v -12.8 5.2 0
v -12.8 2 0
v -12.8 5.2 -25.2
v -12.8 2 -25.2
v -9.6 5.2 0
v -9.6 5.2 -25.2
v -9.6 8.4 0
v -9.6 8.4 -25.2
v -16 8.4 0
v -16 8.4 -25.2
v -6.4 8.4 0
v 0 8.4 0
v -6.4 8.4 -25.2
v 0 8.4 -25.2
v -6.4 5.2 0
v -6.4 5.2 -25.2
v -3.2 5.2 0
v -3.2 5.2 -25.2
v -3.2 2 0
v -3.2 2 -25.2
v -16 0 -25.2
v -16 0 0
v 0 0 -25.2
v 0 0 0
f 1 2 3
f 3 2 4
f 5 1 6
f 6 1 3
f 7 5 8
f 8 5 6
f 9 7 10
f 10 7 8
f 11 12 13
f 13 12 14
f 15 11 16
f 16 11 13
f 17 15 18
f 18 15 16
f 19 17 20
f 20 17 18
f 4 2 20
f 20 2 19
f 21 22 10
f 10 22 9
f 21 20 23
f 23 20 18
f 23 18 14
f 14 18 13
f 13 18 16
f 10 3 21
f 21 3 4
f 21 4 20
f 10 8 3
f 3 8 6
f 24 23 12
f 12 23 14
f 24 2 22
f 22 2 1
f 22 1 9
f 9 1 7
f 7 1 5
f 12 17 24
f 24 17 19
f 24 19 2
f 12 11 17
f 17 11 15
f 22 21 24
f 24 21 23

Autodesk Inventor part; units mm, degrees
ref_plane "YZ Plane" through (0, 0, 0) normal (1, 0, 0) x (0, 1, 0)
ref_plane "XZ Plane" through (0, 0, 0) normal (0, 1, 0) x (-1, 0, 0)
ref_plane "XY Plane" through (0, 0, 0) normal (0, 0, 1) x (1, 0, 0)
sketch "Sketch1" plane through (0, 0, 0) normal (0, 1, 0) x (-1, 0, 0)
  line L0 (0, 0) -> (16, 0)
  line L1 (16, 0) -> (16, -25.2)
  line L2 (16, -25.2) -> (0, -25.2)
  line L3 (0, -25.2) -> (0, 0)
  dimension "d0" = 16
  dimension "d1" = 25.2
extrude "Extrusion1" add sketch "Sketch1" along normal blind 2
sketch "Sketch2" plane through (-16, 0, 0) normal (0, 0, 1) x (1, 0, 0)
  line L0 (0, 2) -> (16, 2) projected
  line L1 (16, 2) -> (16, 8.4)
  line L2 (16, 8.4) -> (9.6, 8.4)
  line L3 (9.6, 8.4) -> (9.6, 5.2)
  line L4 (9.6, 5.2) -> (12.8, 5.2)
  line L5 (12.8, 5.2) -> (12.8, 2)
  line L6 (12.8, 2) -> (16, 2)
  line L7 (0, 2) -> (0, 8.4)
  line L8 (0, 8.4) -> (6.4, 8.4)
  line L9 (6.4, 8.4) -> (6.4, 5.2)
  line L10 (6.4, 5.2) -> (3.2, 5.2)
  line L11 (3.2, 5.2) -> (3.2, 2)
  point P0 (16, 0)
  dimension "d4" = 6.4
  dimension "d5" = 6.4
  dimension "d6" = 3.2
  dimension "d7" = 3.2
  dimension "d8" = 6.4
  dimension "d9" = 3.2
extrude "Extrusion2" add sketch "Sketch2" against normal blind 25.2
properties part number "testrail"
